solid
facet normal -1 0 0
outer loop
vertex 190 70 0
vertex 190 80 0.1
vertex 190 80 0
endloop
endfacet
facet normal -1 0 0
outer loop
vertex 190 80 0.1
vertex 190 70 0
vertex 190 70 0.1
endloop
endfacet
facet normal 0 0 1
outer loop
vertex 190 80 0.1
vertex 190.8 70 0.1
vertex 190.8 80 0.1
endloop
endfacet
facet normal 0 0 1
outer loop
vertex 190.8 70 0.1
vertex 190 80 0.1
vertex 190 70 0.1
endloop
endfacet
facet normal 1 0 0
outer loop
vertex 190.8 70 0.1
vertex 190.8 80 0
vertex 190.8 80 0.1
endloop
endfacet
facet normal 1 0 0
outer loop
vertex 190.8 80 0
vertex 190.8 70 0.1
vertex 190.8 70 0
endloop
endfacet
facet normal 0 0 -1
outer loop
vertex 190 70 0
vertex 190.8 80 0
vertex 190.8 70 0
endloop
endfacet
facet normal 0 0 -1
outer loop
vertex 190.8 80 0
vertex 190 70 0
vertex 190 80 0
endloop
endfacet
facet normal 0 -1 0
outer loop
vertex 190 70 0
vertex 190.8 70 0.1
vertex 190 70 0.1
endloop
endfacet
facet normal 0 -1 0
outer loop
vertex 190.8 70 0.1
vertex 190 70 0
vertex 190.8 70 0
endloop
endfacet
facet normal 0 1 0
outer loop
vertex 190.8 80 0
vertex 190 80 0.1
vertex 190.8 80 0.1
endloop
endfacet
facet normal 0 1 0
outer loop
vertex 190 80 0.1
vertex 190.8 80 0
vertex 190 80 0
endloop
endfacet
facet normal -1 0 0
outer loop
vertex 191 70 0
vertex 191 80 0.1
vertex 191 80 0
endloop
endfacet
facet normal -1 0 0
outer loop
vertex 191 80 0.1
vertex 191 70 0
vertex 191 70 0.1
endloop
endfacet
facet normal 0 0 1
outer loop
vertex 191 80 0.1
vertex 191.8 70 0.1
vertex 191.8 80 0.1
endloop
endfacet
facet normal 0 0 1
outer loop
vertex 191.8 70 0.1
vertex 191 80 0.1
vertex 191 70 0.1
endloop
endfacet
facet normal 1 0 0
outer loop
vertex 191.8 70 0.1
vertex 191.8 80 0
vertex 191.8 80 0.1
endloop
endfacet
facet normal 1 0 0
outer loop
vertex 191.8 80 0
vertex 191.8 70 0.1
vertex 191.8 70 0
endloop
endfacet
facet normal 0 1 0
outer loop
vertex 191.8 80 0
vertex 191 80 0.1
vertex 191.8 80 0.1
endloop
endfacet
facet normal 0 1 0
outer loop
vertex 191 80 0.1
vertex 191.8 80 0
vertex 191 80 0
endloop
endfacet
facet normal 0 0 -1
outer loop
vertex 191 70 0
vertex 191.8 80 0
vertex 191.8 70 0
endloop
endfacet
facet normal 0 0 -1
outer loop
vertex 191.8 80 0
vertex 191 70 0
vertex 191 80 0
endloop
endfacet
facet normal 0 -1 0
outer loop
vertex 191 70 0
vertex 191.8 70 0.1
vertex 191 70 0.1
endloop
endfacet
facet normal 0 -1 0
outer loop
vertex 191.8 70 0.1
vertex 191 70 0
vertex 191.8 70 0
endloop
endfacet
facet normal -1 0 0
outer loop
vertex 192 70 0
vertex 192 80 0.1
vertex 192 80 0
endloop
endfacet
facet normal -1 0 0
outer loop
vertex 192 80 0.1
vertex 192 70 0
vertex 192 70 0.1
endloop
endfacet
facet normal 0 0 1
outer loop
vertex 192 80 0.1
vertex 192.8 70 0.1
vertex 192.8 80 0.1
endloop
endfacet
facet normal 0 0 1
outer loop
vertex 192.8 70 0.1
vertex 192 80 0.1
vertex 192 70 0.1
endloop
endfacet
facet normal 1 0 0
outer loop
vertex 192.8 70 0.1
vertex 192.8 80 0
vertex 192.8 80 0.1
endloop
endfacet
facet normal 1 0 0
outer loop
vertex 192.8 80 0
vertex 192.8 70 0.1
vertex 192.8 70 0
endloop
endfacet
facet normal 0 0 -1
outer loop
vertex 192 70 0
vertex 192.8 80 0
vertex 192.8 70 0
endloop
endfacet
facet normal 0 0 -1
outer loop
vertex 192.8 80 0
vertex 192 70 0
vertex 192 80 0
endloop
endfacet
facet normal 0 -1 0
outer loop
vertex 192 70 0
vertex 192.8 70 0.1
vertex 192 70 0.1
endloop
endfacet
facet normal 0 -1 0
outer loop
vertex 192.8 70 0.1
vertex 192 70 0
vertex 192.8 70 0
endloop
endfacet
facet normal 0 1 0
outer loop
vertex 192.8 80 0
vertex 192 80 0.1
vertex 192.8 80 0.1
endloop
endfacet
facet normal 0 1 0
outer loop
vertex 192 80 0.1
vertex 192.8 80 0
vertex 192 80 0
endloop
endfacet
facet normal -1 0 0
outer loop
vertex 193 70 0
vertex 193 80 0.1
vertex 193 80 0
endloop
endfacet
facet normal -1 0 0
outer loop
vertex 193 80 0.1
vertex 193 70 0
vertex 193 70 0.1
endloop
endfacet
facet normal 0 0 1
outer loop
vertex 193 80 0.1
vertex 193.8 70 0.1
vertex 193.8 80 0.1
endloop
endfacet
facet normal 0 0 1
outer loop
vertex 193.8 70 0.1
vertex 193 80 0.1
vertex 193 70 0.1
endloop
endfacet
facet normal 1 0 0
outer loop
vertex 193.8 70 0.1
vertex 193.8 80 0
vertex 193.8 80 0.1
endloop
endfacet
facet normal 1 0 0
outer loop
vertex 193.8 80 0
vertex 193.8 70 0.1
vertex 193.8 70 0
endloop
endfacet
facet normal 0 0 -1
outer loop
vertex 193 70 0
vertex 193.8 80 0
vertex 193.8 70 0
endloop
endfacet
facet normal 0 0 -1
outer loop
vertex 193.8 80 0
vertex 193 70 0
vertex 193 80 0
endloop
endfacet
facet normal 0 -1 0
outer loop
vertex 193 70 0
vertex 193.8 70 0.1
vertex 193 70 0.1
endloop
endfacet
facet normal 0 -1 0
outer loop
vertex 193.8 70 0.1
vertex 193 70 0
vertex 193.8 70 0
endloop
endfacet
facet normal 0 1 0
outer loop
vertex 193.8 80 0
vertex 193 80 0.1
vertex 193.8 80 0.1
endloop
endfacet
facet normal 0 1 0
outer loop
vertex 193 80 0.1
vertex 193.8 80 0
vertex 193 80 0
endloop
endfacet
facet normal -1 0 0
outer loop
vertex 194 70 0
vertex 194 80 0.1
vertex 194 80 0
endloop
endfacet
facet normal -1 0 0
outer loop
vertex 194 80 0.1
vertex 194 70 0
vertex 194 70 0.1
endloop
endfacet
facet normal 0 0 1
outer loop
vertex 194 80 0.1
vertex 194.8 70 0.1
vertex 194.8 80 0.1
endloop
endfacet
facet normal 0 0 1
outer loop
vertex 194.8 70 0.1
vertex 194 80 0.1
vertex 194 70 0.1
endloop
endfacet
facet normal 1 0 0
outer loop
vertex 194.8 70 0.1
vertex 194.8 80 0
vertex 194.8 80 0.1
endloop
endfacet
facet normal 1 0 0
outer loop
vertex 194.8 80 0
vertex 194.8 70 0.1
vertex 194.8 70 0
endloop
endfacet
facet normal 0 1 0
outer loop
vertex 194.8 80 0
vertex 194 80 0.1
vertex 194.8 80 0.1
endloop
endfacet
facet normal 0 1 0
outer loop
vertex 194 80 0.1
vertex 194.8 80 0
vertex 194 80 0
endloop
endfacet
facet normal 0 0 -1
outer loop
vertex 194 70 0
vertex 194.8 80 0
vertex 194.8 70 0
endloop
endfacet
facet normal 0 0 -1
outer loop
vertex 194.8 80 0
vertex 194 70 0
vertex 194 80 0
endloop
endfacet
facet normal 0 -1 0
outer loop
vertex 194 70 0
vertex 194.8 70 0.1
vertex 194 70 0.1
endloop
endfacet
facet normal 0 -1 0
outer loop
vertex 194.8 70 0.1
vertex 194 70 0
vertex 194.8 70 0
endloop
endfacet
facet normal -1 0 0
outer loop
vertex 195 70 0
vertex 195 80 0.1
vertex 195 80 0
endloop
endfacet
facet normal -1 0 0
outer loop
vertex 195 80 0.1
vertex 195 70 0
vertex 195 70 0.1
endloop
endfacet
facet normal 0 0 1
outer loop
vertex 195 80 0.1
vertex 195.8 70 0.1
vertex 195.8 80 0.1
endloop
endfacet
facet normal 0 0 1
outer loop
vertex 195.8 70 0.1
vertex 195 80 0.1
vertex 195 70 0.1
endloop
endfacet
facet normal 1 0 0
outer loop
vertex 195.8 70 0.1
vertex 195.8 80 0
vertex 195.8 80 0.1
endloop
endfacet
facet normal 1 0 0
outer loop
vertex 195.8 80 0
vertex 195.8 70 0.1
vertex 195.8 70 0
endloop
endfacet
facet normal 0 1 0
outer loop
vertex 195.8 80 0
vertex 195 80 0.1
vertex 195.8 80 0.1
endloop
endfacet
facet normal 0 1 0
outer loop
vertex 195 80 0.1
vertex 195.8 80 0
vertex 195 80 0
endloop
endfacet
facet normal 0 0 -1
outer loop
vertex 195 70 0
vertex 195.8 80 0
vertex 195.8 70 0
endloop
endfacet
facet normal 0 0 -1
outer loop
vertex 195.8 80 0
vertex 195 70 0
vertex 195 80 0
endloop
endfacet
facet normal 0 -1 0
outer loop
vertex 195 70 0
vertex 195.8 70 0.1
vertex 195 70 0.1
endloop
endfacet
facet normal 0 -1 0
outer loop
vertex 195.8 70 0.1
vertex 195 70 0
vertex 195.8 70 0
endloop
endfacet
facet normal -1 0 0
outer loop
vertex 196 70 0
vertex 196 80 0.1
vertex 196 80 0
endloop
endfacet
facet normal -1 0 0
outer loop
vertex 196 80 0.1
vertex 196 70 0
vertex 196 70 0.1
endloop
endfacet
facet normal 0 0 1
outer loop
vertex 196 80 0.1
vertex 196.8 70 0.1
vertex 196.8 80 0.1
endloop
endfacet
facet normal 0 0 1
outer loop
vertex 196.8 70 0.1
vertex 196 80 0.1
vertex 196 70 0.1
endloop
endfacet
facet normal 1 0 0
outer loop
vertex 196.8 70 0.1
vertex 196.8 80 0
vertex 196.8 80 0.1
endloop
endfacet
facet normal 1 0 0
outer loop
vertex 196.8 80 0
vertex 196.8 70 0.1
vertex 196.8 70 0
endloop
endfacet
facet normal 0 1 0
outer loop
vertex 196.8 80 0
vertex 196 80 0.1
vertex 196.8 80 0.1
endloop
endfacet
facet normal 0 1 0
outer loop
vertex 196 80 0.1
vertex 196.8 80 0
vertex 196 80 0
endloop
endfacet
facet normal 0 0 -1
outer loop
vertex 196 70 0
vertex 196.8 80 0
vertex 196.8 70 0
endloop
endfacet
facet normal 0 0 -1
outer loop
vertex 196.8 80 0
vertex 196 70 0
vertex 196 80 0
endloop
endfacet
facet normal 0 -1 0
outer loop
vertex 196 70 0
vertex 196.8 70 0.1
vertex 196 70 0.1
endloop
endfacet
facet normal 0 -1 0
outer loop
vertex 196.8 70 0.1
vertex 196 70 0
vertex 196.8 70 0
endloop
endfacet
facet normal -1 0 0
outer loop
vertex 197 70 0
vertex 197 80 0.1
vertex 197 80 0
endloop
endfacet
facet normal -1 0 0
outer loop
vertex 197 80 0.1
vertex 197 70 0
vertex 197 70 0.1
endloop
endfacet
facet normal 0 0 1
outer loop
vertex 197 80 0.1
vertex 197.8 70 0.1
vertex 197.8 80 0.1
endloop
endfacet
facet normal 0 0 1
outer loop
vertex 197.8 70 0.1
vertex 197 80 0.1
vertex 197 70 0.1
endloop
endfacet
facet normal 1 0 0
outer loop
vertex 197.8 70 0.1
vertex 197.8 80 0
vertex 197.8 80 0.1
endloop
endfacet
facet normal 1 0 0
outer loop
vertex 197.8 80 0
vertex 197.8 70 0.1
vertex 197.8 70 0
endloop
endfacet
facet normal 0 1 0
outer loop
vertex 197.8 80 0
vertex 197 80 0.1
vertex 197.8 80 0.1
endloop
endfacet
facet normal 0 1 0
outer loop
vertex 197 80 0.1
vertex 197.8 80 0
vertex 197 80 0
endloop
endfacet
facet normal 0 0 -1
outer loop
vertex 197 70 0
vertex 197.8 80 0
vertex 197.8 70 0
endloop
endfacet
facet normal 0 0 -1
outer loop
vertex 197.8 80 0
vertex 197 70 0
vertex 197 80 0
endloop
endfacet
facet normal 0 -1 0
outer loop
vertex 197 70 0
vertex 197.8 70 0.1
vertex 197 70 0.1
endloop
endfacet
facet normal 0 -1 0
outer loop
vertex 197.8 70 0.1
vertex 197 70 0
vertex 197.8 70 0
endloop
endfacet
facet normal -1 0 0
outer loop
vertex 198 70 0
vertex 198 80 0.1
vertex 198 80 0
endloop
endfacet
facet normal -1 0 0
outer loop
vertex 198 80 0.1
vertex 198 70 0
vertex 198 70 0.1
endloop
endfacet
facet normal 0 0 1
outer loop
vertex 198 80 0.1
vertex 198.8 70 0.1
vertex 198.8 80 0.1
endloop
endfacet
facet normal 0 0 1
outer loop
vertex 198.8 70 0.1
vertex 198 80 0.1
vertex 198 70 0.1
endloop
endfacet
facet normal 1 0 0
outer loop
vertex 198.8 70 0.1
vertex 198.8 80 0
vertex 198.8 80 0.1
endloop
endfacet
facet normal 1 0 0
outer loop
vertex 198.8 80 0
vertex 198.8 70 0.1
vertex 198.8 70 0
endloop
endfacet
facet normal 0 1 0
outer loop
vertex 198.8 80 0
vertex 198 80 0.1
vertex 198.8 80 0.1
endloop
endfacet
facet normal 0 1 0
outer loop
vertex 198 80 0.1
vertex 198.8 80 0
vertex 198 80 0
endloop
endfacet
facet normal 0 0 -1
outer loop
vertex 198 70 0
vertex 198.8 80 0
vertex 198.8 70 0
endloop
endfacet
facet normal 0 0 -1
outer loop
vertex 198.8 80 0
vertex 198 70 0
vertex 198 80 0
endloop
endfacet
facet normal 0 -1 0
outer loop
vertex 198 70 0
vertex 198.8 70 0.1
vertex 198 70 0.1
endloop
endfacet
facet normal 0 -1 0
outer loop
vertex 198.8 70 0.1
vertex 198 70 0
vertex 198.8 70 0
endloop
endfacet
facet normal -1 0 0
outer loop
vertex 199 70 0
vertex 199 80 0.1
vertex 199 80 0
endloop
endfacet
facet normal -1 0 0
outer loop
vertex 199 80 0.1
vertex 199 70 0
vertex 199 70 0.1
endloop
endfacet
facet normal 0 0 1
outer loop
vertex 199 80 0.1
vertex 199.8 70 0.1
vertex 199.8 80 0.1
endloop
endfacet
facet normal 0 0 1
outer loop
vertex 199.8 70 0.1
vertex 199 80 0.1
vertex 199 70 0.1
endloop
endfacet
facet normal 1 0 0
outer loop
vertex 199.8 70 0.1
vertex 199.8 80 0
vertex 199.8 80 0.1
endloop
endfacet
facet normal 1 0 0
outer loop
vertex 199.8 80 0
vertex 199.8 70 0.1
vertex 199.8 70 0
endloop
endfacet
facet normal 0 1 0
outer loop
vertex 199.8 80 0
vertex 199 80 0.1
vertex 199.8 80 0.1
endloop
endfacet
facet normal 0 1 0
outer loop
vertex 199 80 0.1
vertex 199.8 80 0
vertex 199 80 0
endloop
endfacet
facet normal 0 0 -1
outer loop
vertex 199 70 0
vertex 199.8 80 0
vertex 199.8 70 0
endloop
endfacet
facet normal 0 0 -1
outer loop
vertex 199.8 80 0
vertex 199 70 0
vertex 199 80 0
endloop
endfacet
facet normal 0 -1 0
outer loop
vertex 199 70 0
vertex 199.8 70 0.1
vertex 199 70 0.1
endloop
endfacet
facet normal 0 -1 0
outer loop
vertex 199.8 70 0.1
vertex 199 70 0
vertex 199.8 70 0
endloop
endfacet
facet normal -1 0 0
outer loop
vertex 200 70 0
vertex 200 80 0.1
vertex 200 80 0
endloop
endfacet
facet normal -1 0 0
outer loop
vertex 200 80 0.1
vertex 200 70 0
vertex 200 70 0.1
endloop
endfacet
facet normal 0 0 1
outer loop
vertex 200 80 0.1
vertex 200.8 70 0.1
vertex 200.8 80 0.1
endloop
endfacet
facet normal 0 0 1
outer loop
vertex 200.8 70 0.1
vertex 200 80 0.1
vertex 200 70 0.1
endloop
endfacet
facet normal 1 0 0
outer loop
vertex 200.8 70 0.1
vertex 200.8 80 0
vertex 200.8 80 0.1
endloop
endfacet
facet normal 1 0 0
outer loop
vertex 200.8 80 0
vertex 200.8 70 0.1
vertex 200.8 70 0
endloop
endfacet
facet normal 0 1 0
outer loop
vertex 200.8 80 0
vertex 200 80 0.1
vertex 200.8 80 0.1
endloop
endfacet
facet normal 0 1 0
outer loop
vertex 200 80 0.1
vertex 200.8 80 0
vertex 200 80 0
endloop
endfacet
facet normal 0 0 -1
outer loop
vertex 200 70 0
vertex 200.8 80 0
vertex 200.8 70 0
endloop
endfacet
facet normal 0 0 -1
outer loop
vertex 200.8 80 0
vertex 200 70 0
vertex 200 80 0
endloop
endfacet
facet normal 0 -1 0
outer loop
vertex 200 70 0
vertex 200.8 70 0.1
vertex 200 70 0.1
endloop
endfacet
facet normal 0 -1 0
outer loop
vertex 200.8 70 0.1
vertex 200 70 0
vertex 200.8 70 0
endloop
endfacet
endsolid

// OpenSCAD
translate([10+180,10+60,0])
        for (i = [0 : 10]){
            translate([i,0,0])
                cube(size = [0.8,10,0.1]);
    }
